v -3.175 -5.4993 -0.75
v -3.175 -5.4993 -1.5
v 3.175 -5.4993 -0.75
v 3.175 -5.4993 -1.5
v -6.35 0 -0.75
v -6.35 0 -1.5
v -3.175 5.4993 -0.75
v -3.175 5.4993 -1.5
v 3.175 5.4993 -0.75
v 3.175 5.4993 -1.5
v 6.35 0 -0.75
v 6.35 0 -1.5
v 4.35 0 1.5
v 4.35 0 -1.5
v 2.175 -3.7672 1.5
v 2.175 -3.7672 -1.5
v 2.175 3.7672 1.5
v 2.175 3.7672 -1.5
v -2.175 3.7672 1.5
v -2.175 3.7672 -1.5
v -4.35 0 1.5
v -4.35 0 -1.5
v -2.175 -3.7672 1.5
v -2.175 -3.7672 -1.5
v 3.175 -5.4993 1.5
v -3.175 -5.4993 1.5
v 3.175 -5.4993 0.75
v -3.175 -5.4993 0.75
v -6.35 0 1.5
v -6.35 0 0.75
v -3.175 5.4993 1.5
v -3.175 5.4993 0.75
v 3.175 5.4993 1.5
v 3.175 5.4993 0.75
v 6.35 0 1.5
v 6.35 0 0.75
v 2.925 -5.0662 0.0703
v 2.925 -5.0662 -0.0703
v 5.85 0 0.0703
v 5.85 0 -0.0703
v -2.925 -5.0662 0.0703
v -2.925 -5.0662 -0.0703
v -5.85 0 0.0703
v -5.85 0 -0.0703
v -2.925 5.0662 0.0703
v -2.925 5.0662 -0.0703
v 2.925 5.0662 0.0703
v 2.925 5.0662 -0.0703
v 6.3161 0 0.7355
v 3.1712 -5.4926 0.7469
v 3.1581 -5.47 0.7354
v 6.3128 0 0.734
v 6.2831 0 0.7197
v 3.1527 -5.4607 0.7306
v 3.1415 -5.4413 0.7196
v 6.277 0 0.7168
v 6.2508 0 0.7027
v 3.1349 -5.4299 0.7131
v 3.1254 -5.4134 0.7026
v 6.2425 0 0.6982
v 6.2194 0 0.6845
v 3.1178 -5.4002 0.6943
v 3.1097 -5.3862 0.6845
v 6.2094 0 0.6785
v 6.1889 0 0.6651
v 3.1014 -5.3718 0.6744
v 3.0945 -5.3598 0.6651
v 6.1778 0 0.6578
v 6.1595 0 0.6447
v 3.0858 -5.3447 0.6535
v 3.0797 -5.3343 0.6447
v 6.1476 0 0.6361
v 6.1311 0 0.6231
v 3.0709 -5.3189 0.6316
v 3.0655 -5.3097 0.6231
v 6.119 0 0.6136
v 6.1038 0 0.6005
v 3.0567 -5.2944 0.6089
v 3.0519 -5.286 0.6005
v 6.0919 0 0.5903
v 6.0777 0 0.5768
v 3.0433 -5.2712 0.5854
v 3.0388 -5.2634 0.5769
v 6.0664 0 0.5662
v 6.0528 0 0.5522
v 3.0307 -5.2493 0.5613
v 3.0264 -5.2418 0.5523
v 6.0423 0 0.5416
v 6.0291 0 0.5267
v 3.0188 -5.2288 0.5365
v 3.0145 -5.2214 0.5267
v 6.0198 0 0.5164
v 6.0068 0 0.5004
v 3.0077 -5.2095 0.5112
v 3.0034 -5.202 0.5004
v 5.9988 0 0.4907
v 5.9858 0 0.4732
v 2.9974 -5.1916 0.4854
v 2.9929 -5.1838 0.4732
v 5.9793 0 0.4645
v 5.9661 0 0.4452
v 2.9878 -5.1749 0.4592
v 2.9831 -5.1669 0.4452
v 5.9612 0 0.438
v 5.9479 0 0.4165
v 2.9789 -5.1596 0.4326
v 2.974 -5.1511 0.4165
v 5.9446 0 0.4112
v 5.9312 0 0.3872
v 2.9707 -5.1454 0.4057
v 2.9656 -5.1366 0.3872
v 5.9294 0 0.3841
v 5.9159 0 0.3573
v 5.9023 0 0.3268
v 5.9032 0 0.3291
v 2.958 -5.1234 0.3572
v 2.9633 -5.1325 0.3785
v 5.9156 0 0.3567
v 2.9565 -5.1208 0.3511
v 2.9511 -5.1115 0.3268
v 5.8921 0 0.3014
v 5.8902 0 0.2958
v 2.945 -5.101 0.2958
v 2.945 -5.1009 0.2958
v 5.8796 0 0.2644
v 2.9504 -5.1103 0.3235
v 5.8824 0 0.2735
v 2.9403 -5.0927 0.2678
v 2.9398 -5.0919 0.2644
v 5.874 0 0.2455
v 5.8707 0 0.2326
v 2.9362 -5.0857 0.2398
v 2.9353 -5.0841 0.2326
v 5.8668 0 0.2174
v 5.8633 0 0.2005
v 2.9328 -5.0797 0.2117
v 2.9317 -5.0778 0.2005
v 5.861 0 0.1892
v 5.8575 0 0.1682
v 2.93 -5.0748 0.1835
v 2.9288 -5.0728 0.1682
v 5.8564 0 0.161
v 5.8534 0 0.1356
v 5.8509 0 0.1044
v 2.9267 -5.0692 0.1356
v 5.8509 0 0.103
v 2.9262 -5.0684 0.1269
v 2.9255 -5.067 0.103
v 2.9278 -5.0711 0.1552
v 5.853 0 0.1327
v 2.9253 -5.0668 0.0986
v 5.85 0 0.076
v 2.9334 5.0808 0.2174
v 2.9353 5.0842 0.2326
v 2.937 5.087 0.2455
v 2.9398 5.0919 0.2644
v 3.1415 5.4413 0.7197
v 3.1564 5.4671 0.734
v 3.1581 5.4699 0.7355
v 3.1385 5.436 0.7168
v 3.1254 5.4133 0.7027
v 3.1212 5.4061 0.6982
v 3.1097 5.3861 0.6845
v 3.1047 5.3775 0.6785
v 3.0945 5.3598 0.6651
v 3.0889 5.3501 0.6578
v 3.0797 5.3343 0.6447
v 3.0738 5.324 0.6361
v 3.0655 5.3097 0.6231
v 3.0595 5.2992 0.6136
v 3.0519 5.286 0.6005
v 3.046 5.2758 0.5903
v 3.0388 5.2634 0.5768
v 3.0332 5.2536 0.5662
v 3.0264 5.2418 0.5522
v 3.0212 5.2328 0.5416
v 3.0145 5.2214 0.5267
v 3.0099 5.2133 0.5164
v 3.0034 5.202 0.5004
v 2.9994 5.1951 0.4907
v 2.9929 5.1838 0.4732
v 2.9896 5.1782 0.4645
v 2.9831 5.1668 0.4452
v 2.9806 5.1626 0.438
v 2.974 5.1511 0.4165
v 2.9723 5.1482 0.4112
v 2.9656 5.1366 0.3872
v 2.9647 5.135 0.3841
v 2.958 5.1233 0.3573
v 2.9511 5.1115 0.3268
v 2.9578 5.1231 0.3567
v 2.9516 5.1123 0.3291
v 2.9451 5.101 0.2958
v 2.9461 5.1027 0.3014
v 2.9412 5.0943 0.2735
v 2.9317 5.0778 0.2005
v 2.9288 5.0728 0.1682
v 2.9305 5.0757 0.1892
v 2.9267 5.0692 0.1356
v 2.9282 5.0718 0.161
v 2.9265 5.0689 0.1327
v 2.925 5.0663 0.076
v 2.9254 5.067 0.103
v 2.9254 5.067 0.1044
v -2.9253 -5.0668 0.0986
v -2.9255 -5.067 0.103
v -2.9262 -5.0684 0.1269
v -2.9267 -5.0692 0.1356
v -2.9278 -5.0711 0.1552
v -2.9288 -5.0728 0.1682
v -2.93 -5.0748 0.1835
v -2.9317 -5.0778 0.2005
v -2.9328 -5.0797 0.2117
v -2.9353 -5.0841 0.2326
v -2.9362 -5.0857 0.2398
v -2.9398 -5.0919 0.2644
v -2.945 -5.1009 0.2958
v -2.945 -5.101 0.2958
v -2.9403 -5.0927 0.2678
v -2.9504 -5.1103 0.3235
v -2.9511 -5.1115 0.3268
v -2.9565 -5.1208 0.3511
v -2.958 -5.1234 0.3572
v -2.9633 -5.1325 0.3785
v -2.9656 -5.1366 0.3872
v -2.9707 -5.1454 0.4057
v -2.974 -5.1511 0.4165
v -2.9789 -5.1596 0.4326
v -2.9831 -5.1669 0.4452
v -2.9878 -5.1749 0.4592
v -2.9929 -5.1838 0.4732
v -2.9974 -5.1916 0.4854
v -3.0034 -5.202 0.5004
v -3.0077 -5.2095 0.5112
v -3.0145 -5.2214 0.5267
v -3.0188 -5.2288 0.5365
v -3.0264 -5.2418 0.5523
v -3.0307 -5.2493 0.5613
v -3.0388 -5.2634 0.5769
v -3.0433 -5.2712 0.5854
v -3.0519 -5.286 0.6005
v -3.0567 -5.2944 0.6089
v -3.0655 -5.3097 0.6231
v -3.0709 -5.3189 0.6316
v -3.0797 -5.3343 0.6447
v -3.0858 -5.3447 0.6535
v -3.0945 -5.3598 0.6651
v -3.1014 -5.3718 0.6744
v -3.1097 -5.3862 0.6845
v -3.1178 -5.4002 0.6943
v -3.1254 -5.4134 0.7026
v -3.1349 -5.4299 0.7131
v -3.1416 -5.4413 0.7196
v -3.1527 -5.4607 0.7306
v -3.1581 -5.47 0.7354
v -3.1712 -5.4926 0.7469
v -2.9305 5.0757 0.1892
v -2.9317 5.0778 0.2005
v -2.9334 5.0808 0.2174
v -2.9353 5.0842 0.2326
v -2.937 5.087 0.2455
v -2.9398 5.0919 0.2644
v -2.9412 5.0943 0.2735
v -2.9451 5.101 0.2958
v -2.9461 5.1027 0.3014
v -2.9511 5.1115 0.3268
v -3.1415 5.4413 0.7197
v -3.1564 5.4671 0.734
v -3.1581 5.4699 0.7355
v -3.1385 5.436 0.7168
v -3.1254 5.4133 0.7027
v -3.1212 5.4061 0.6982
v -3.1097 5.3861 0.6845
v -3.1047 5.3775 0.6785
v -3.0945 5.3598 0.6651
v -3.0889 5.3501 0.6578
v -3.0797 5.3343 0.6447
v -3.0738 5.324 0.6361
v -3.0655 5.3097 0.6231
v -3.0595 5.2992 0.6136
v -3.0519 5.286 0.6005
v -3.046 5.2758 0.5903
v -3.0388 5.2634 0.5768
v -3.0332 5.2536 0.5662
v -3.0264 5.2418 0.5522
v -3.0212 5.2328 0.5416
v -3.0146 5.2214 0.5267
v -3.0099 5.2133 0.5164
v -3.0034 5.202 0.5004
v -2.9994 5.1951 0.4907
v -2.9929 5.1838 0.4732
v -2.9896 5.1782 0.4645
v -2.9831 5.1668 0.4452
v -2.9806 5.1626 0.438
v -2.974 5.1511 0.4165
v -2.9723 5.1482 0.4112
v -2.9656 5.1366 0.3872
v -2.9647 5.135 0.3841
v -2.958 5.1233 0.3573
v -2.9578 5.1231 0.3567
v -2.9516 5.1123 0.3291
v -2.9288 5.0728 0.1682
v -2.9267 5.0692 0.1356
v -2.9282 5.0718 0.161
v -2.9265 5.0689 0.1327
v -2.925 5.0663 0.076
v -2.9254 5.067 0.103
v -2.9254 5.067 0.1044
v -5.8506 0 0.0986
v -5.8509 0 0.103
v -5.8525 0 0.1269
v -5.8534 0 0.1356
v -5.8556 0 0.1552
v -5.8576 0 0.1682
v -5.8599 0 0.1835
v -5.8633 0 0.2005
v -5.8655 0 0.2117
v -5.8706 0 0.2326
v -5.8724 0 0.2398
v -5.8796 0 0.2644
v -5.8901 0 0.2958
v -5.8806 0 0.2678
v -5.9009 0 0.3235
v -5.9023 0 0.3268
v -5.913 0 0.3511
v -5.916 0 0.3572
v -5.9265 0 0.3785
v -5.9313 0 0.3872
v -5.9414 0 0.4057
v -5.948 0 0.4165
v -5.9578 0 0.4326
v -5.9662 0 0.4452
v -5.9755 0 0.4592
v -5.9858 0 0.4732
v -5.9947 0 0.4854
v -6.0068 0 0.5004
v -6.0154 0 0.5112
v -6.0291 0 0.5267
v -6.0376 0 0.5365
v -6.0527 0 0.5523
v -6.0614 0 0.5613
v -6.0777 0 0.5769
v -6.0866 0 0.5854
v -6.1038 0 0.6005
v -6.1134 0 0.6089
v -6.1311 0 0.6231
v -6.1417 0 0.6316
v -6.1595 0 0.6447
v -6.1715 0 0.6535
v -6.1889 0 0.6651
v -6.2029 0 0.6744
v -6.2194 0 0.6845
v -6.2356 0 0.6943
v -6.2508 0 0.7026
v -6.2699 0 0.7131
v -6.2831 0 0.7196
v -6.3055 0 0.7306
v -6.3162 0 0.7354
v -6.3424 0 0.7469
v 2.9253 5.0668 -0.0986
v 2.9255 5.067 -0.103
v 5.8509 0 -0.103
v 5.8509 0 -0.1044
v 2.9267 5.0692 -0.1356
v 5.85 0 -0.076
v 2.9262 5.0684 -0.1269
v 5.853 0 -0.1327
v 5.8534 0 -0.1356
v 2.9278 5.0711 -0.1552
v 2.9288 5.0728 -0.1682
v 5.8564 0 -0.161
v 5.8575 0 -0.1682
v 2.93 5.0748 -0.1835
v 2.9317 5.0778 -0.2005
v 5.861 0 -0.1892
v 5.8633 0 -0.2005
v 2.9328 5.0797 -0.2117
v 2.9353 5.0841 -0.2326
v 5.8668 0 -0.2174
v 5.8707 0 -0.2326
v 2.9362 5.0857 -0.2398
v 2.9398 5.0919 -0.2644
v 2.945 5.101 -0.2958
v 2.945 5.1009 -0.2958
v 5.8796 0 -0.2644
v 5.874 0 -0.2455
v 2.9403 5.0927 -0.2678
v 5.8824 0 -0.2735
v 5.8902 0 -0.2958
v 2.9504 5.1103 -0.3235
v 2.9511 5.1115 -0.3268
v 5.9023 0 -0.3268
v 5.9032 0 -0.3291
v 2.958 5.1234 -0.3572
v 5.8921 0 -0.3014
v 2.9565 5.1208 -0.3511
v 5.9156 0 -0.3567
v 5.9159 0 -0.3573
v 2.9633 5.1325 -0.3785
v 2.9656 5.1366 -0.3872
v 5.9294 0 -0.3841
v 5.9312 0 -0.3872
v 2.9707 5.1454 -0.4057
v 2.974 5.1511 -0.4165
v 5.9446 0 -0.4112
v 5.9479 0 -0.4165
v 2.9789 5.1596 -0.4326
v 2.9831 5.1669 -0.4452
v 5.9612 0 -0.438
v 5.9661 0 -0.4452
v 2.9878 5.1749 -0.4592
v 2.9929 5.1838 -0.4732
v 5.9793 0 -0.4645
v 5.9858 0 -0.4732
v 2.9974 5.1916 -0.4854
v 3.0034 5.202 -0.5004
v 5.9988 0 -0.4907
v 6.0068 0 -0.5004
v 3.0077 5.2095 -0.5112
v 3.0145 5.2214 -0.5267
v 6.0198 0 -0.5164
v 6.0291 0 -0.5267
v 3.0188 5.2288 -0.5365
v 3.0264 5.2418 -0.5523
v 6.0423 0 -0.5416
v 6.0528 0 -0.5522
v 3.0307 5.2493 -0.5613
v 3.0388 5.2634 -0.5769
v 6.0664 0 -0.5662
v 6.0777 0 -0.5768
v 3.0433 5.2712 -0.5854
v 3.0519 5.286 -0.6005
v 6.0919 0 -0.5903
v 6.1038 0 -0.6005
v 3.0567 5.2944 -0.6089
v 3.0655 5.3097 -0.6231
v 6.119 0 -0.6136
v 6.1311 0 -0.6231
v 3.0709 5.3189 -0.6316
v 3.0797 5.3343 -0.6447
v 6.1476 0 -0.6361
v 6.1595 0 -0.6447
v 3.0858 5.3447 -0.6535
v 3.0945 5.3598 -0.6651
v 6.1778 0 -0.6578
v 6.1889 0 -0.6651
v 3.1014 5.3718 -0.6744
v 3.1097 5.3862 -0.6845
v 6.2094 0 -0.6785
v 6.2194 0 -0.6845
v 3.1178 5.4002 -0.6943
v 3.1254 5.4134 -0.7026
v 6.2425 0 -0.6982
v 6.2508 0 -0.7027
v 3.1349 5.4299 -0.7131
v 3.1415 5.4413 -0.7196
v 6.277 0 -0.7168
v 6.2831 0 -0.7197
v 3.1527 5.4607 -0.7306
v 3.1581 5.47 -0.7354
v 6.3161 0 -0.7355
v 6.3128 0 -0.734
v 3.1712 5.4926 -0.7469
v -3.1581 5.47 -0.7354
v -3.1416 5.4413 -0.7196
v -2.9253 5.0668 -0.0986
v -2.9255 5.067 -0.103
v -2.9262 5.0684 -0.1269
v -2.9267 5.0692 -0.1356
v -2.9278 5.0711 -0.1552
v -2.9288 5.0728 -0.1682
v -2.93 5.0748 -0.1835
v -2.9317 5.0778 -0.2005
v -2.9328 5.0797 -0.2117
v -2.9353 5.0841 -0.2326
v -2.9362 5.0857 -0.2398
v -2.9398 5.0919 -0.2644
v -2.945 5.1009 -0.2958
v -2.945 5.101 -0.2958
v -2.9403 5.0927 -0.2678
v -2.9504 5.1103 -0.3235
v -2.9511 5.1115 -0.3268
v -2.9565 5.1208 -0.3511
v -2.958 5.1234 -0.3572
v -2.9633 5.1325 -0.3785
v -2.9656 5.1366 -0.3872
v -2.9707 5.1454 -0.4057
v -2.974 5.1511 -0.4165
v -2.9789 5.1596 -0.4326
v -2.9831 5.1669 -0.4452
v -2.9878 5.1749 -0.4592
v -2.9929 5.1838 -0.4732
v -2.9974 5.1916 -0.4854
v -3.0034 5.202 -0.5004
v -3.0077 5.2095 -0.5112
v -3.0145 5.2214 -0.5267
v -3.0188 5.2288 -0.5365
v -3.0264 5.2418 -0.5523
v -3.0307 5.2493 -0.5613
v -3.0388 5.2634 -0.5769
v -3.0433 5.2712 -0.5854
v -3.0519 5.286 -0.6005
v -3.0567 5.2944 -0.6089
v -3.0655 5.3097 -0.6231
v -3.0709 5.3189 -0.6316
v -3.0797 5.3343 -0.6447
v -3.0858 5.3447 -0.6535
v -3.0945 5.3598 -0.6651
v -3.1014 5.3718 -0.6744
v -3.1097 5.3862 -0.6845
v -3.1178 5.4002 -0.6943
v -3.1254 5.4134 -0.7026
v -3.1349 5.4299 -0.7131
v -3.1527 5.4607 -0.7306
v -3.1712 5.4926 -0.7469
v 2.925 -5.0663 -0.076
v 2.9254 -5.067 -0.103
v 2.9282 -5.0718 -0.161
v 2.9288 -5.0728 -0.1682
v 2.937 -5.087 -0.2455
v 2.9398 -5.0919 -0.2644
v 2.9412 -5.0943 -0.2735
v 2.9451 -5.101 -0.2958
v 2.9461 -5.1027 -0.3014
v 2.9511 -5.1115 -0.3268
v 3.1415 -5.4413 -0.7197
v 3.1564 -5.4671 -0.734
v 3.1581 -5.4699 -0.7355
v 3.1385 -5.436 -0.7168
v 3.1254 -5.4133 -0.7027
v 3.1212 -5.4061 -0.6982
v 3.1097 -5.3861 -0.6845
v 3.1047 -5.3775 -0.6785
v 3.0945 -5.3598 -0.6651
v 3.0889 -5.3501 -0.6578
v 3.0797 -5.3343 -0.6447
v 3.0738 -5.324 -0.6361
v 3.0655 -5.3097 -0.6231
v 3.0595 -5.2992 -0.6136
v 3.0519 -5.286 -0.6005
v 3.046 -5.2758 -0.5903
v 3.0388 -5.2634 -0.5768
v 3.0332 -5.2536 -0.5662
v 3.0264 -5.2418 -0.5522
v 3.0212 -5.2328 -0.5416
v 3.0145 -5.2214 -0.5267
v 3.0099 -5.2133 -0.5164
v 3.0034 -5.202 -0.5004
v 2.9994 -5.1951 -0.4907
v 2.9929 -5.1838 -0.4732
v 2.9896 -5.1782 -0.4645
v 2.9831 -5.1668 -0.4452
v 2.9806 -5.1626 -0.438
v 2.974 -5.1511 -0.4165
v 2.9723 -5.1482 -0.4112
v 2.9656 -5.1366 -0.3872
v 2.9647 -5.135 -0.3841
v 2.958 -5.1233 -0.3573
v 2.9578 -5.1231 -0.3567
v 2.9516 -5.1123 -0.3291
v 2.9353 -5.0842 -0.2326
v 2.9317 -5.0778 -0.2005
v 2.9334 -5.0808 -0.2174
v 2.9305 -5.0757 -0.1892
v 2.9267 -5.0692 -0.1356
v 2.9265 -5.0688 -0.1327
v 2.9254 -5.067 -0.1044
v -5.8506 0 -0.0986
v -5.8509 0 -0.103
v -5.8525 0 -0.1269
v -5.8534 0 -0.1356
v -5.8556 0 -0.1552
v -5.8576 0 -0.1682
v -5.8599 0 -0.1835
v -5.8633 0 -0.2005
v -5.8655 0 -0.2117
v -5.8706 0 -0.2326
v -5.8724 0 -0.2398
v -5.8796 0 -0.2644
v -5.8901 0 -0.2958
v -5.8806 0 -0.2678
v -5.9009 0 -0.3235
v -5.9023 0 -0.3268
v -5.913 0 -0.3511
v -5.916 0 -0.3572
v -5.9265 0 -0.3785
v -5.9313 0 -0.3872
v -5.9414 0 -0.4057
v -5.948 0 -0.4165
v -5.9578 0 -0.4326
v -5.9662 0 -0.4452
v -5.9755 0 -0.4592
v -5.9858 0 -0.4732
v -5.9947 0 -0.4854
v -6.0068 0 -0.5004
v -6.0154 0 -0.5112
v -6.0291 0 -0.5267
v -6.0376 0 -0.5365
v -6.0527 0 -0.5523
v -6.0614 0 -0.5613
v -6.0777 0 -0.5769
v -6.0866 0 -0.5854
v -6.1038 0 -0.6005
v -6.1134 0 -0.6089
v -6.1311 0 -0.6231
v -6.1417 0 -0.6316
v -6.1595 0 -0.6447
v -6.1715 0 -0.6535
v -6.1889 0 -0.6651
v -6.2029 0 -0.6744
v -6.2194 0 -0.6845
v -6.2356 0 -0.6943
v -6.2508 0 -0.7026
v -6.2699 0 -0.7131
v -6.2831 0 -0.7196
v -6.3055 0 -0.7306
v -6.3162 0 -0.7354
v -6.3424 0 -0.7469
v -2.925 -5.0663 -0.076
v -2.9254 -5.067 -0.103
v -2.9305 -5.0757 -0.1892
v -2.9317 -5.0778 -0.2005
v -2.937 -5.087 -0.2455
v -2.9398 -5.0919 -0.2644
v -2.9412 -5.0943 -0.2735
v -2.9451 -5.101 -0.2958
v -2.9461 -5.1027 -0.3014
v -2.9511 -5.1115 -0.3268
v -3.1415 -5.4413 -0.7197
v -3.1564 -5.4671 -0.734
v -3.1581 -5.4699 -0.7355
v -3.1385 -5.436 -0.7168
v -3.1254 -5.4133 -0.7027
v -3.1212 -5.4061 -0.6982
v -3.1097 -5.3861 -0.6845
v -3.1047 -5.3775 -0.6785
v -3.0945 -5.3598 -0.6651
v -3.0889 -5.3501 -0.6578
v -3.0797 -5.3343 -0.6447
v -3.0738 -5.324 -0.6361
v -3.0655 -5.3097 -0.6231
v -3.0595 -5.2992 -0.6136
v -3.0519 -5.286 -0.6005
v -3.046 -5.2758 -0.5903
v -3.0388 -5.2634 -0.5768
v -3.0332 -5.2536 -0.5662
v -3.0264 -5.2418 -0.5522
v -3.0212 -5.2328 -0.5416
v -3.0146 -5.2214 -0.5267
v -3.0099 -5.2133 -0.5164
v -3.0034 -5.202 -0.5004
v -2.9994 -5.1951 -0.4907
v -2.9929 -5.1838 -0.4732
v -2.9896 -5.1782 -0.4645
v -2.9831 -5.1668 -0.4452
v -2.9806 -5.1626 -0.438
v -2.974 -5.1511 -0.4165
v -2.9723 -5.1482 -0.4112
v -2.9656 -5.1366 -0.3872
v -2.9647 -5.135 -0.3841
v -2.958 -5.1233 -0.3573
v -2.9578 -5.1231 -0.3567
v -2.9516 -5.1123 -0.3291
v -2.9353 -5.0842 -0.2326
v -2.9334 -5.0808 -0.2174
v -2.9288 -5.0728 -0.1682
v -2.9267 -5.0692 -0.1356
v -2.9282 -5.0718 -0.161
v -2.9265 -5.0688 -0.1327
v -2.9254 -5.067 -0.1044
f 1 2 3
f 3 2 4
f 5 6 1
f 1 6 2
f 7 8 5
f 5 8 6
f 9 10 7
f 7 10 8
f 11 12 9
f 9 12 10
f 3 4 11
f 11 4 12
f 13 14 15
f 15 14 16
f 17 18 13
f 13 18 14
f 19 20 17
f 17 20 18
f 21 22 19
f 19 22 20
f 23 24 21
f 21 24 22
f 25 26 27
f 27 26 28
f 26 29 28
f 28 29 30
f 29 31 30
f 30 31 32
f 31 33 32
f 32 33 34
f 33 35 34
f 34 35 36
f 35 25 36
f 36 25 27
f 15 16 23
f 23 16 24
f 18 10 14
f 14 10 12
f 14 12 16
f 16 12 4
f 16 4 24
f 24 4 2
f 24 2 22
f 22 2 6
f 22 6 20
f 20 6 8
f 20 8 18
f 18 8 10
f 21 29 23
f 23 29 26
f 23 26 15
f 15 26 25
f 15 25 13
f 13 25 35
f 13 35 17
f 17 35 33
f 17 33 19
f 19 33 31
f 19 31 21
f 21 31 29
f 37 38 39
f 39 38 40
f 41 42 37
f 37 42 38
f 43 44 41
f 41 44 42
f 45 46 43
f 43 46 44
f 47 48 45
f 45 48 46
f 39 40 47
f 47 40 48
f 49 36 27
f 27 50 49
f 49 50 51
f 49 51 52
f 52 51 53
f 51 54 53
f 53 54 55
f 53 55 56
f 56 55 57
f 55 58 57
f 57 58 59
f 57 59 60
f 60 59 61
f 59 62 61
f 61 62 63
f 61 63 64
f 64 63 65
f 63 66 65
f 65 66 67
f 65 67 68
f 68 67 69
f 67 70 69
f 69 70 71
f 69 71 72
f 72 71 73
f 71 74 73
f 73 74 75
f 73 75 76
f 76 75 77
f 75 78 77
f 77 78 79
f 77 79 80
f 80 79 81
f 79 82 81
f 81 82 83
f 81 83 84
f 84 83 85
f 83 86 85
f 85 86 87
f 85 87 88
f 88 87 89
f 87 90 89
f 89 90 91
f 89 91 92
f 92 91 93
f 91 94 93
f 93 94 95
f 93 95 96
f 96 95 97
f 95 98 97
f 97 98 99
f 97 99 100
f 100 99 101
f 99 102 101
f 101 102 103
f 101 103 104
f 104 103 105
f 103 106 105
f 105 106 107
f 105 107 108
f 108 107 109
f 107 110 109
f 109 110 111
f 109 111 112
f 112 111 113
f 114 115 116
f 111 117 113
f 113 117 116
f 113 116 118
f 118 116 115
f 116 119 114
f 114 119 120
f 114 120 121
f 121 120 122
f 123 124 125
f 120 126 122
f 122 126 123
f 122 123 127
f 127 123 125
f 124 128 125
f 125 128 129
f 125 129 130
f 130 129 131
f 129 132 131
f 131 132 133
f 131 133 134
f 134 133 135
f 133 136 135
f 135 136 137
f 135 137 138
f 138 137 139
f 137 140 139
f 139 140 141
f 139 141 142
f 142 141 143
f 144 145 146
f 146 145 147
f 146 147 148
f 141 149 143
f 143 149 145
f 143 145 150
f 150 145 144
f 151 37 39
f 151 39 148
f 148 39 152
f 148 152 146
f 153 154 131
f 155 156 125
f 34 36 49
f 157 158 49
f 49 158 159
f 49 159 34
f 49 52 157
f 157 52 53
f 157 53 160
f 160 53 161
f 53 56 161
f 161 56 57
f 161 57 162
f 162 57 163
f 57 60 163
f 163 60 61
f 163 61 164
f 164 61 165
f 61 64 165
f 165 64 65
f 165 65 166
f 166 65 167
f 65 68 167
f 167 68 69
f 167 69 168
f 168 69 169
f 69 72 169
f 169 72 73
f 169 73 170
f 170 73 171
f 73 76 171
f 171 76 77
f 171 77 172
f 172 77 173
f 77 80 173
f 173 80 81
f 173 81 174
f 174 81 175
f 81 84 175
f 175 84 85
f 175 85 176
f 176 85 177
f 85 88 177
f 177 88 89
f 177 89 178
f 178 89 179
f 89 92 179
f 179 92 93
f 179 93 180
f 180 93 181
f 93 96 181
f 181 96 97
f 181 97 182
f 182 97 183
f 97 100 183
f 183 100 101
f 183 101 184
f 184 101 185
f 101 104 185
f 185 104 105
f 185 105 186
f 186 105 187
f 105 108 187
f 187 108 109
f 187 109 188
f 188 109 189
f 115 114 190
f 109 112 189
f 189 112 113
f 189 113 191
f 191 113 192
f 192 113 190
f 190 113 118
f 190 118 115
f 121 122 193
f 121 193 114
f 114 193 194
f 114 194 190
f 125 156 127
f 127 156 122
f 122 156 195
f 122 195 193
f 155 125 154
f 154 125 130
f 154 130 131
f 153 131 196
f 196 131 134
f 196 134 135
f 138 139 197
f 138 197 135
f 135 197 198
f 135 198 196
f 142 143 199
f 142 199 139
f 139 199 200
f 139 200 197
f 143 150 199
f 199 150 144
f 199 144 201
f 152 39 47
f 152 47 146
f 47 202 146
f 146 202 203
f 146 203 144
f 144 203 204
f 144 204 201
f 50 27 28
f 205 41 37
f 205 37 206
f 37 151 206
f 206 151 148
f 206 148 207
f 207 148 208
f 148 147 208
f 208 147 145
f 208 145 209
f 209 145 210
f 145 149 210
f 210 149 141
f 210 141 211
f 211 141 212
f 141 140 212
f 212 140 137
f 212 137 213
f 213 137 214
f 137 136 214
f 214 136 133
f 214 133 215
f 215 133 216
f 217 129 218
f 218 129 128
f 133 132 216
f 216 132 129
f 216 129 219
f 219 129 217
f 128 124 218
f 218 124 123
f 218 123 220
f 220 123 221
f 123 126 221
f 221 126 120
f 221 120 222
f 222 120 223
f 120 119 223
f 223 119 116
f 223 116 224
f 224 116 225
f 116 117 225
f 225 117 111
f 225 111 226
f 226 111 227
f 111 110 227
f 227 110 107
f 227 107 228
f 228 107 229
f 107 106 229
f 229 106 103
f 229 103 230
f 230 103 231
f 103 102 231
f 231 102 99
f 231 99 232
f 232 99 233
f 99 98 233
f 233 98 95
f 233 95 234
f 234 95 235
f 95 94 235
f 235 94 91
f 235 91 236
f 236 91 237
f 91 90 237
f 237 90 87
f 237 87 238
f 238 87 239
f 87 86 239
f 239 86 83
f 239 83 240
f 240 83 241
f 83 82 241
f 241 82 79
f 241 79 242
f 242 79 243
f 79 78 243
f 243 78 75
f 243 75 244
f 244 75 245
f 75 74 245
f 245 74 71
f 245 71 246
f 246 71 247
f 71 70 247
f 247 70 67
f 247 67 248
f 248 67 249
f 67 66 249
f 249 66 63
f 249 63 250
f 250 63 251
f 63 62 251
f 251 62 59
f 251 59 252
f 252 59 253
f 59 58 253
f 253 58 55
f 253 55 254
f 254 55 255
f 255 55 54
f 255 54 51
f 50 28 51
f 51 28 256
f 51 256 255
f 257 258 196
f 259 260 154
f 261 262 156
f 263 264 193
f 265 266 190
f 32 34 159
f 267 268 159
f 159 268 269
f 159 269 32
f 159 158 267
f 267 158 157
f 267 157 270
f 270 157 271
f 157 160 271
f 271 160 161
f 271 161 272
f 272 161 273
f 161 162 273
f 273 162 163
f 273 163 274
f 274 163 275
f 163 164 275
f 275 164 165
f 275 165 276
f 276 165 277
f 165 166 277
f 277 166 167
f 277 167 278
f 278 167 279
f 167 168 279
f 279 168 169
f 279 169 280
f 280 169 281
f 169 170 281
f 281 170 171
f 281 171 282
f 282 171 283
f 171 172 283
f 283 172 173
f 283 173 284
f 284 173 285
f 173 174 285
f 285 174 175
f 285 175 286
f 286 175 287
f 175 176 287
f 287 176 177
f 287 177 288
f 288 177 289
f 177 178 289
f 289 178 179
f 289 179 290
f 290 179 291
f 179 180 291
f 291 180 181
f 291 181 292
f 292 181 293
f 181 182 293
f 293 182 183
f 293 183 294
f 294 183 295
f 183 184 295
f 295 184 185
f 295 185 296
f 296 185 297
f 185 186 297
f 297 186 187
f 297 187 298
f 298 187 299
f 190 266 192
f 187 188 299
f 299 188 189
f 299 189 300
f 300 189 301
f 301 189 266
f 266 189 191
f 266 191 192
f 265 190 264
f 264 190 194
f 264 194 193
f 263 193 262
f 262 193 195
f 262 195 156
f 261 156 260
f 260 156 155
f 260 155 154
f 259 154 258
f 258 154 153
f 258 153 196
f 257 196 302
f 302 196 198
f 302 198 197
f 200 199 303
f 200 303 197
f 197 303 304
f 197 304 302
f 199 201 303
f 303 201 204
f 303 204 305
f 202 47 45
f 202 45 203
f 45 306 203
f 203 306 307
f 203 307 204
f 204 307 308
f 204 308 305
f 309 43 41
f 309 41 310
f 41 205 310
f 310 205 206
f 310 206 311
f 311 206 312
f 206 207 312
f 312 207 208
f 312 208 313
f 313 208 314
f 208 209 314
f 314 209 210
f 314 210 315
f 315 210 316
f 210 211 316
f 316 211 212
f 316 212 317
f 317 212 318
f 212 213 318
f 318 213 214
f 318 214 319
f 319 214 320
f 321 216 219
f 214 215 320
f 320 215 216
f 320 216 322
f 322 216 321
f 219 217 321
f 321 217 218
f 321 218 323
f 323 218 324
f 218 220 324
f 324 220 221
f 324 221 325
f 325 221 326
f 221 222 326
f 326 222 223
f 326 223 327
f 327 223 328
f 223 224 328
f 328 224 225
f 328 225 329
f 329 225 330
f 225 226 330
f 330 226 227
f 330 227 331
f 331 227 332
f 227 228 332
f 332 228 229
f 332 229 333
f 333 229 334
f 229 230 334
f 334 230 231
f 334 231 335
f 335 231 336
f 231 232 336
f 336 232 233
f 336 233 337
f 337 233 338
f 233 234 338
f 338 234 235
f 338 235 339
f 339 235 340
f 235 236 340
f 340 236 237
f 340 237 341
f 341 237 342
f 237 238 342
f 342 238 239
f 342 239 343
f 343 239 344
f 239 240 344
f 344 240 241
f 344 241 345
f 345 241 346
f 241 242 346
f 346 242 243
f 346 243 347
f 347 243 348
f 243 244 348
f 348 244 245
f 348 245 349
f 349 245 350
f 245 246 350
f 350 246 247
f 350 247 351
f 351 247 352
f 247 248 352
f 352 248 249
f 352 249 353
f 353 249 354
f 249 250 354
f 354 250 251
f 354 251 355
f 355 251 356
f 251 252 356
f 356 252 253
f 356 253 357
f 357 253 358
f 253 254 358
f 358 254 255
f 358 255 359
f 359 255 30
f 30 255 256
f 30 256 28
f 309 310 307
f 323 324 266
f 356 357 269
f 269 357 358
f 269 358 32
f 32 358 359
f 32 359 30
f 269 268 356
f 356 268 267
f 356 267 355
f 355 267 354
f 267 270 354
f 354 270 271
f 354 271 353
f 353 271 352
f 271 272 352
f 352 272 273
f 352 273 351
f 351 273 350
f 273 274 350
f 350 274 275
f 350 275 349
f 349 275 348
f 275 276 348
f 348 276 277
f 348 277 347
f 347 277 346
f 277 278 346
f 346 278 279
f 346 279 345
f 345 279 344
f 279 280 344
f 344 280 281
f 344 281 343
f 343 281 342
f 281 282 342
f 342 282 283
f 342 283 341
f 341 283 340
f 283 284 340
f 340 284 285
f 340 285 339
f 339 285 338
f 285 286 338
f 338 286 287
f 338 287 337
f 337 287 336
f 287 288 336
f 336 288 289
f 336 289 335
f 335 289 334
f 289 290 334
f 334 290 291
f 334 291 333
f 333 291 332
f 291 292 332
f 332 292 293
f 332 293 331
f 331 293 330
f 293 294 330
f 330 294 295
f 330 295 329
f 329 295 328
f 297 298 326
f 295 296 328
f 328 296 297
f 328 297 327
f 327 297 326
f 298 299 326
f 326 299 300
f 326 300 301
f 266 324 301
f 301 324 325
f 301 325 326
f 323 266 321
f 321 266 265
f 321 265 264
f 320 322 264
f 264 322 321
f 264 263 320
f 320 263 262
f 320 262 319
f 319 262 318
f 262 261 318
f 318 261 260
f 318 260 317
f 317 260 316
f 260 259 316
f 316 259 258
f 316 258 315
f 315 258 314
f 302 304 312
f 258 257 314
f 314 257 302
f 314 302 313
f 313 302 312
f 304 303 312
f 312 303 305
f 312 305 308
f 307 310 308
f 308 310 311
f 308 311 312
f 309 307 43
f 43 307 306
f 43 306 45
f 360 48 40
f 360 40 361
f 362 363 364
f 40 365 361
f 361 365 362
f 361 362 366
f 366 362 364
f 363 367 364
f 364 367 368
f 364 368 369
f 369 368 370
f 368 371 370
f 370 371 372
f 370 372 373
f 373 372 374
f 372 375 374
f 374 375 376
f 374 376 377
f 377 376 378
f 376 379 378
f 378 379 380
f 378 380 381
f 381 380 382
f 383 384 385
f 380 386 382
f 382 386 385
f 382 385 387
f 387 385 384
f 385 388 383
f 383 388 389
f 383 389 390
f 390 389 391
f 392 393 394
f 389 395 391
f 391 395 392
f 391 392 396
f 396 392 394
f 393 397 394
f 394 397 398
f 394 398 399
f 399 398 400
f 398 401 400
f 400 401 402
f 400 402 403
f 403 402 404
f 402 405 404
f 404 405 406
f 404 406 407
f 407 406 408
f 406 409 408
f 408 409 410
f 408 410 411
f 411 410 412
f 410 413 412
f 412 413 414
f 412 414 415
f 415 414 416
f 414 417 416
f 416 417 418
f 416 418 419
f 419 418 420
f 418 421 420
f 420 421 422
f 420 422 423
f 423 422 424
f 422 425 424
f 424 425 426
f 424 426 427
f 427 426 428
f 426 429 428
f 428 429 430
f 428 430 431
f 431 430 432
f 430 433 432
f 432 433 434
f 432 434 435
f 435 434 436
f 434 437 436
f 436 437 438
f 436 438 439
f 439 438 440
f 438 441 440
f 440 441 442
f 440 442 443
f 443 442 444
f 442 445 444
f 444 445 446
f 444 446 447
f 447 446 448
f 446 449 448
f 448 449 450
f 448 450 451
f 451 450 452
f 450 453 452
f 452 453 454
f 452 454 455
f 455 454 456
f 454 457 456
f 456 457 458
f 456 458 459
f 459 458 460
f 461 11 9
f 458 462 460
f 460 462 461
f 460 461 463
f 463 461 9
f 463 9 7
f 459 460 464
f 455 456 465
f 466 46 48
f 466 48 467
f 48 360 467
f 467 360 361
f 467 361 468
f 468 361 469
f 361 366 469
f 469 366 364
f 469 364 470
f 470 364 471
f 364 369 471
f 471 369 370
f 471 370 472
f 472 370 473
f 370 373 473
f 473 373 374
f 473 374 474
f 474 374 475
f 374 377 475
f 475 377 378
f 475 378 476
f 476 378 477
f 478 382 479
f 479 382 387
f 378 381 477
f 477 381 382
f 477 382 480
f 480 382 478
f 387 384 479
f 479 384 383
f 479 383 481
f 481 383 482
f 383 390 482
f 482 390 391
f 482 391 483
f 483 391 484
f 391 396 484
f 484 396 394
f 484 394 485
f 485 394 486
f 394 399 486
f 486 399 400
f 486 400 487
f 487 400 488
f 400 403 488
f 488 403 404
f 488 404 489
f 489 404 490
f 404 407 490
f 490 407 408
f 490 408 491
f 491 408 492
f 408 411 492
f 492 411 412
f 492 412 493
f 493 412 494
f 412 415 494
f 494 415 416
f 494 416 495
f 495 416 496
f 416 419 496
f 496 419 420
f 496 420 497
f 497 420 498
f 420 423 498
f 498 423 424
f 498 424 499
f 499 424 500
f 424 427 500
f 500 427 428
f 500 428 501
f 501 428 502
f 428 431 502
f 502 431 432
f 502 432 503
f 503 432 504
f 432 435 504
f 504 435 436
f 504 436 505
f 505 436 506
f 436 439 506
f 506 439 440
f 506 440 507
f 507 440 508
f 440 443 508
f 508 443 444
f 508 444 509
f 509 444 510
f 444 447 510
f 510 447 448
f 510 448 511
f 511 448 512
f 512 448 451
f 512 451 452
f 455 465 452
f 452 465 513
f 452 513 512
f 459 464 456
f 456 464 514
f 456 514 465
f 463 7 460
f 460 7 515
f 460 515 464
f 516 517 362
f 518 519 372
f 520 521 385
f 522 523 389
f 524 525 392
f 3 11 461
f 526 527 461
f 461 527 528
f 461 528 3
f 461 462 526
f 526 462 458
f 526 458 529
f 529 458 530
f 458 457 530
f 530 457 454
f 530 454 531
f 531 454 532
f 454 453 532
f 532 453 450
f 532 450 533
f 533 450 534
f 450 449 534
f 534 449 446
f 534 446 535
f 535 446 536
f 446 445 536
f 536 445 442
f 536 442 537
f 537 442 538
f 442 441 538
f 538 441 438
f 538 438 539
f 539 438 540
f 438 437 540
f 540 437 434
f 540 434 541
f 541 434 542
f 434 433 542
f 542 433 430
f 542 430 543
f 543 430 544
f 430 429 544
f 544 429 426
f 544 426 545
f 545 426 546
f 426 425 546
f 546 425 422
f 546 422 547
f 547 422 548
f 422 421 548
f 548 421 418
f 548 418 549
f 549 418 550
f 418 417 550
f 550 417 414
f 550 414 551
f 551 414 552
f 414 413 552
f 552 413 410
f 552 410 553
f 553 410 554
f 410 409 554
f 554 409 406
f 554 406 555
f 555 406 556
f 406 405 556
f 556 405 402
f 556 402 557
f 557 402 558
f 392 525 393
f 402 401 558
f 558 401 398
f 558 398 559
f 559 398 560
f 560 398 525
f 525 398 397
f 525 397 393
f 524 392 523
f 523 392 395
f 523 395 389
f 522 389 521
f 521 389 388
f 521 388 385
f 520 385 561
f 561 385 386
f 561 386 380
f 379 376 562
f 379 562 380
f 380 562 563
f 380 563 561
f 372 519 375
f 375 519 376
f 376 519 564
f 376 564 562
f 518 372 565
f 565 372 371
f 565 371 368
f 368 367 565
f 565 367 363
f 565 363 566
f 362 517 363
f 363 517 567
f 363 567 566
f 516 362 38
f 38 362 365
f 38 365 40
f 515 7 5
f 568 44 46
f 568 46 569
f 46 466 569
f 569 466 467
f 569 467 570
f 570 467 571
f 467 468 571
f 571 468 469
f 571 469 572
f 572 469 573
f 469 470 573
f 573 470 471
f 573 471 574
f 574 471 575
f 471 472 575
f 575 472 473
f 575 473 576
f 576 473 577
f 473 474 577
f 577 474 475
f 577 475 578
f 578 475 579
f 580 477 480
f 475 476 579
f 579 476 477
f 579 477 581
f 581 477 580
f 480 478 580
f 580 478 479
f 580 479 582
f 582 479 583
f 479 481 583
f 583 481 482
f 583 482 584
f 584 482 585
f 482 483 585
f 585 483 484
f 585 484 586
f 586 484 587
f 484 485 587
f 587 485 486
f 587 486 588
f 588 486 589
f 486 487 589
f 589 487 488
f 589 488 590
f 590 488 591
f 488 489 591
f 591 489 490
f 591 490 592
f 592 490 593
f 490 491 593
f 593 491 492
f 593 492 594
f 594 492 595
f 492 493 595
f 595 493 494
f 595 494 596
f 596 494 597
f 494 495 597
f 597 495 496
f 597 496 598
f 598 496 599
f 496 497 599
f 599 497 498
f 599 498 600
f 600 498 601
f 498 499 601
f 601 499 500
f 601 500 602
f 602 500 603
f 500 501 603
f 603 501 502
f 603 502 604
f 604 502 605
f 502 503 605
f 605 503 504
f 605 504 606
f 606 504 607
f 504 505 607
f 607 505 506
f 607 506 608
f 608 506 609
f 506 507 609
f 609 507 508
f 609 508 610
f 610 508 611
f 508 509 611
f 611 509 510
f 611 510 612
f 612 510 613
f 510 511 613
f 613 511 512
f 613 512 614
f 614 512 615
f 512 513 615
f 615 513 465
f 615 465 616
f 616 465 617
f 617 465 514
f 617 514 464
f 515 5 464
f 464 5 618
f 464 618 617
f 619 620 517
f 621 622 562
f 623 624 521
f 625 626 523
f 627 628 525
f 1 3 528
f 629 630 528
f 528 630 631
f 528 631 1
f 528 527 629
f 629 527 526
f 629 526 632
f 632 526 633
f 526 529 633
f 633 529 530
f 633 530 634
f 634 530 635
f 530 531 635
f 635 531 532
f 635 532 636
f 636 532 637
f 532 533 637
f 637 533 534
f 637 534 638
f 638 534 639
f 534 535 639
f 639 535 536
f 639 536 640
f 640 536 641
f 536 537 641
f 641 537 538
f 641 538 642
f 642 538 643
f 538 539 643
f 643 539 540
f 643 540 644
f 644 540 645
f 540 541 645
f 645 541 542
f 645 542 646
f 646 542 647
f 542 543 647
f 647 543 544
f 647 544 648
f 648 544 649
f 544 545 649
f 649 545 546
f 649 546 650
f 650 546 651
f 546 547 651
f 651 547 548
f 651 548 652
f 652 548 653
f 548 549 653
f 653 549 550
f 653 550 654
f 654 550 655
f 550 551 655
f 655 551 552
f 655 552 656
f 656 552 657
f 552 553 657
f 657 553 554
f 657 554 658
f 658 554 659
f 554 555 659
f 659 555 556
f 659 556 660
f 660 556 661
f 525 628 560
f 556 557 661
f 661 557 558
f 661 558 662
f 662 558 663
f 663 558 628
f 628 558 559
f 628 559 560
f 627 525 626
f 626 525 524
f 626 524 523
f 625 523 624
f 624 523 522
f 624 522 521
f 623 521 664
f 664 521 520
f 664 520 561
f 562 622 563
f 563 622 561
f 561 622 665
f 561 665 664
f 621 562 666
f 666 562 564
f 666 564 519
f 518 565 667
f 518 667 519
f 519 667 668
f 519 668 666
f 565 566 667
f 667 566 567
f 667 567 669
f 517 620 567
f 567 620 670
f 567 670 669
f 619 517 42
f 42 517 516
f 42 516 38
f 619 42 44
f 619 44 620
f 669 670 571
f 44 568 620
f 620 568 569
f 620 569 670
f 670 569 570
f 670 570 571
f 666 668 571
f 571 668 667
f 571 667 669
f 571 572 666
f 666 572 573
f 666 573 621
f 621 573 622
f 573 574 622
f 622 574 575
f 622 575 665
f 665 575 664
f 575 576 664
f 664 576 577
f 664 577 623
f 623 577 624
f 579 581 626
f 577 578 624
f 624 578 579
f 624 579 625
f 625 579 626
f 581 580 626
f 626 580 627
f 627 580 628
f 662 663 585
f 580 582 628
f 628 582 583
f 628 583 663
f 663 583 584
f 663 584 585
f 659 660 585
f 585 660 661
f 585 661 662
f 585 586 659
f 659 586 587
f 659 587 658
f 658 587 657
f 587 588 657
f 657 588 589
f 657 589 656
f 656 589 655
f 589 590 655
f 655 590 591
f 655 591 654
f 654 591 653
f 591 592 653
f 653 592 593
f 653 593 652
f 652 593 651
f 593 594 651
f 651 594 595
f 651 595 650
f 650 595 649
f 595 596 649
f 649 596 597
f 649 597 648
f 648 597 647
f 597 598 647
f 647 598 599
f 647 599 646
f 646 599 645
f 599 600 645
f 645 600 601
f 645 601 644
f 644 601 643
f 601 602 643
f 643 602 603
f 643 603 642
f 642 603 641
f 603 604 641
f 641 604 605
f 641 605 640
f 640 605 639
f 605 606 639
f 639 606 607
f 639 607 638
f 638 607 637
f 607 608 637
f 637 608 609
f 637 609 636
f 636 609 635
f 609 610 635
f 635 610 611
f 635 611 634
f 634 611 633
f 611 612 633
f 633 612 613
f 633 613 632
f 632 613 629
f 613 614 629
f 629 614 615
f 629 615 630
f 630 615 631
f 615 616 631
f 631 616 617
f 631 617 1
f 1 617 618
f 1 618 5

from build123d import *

# Parameters (mm, degrees)
BOSS_EXTRUDE2_DEPTH      = 1.5
BOSS_EXTRUDE2_DEPTH_BACK = 1.5
CUT_EXTRUDE1_DEPTH       = 0.75
CUT_EXTRUDE1_DEPTH_BACK  = 0.75
FILLET1_R                = 0.75


with BuildPart() as part:
    # Sketch1 → Boss-Extrude2 (new, two sides: drawn at the far end of the back side and taken through both)
    # profile 1 of 2: a face of its own
    with BuildSketch(Plane.XY.offset(-BOSS_EXTRUDE2_DEPTH_BACK)):
        Polygon((-3.175, -5.499261314), (3.175, -5.499261314), (6.35, 0), (3.175, 5.499261314), (-3.175, 5.499261314), (-6.35, 0), align=None)
        Polygon((2.925, -5.066248612), (5.85, 0), (2.925, 5.066248612), (-2.925, 5.066248612), (-5.85, 0), (-2.925, -5.066248612), align=None, mode=Mode.SUBTRACT)
    # profile 2 of 2: a face of its own
    with BuildSketch(Plane.XY.offset(-BOSS_EXTRUDE2_DEPTH_BACK)):
        Polygon((-2.925, -5.066248612), (2.925, -5.066248612), (5.85, 0), (2.925, 5.066248612), (-2.925, 5.066248612), (-5.85, 0), align=None)
        Polygon((2.175, -3.767210506), (4.35, 0), (2.175, 3.767210506), (-2.175, 3.767210506), (-4.35, 0), (-2.175, -3.767210506), align=None, mode=Mode.SUBTRACT)
    extrude(amount=BOSS_EXTRUDE2_DEPTH + BOSS_EXTRUDE2_DEPTH_BACK)

    # Sketch1<4> → Cut-Extrude1 (cut, two sides: drawn at the far end of the back side and taken through both)
    with BuildSketch(Plane.XY.offset(-CUT_EXTRUDE1_DEPTH_BACK)):
        Polygon((-3.175, -5.499261314), (3.175, -5.499261314), (6.35, 0), (3.175, 5.499261314), (-3.175, 5.499261314), (-6.35, 0), align=None)
        Polygon((2.925, -5.066248612), (5.85, 0), (2.925, 5.066248612), (-2.925, 5.066248612), (-5.85, 0), (-2.925, -5.066248612), align=None, mode=Mode.SUBTRACT)
    extrude(amount=CUT_EXTRUDE1_DEPTH + CUT_EXTRUDE1_DEPTH_BACK, mode=Mode.SUBTRACT)

    # Fillet1
    # the kernel refuses this fillet: 0.75 mm, written as the material it adds along each edge
    with BuildSketch(Plane(origin=(2.075350207, -6.537885222, 0.75), x_dir=(0.8660254037844385, -0.5000000000000001, 0), z_dir=(0.5000000000000001, 0.8660254037844387, 0))) as fillet1_piece_1_section:
        with BuildLine():
            CenterArc((0.75, 0.679719834), FILLET1_R, 180, 64.998010544)
            Line((0, 0.679719834), (0, 0))
            Line((0, 0), (0.433012702, 0))
        make_face()
    fillet1_piece_1 = extrude(amount=9.24859917, mode=Mode.PRIVATE)
    fillet1_piece_1 = split(fillet1_piece_1, bisect_by=Plane(origin=(2.075350207, -5.499261314, 0.75), z_dir=(0, 1, 0)), keep=Keep.TOP, mode=Mode.PRIVATE)
    fillet1_piece_1 = split(fillet1_piece_1, bisect_by=Plane(origin=(8.112324896, -3.05243626, 0.75), z_dir=(-0.8660254037844386, -0.5000000000000002, 0)), keep=Keep.TOP, mode=Mode.PRIVATE)
    fillet1_piece_1 = fillet1_piece_1 - Plane(origin=(2.075350207, -5.816248612, 0.070280166), x_dir=(0, 0.42264973081037627, 0.9062931121033175), z_dir=(-1, 0, 0)) * Cylinder(0.75, 22, mode=Mode.PRIVATE)
    fillet1_piece_1 = fillet1_piece_1 - Plane(origin=(8.386843949, -2.893942611, 0.070280166), x_dir=(-0.3660254037844377, -0.21132486540518658, 0.9062931121033191), z_dir=(0.5000000000000001, -0.8660254037844386, 0)) * Cylinder(0.75, 22, mode=Mode.PRIVATE)
    add(fillet1_piece_1)
    with BuildSketch(Plane(origin=(-4.624299585, -5.066248612, 0.75), x_dir=(0, -1, 0), z_dir=(1, 0, 0))) as fillet1_piece_2_section:
        with BuildLine():
            CenterArc((0.75, 0.679719834), FILLET1_R, 180, 64.998010544)
            Line((0, 0.679719834), (0, 0))
            Line((0, 0), (0.433012702, 0))
        make_face()
    fillet1_piece_2 = extrude(amount=9.24859917, mode=Mode.PRIVATE)
    fillet1_piece_2 = split(fillet1_piece_2, bisect_by=Plane(origin=(-3.724824896, -4.546936658, 0.75), z_dir=(0.8660254037844386, 0.5000000000000001, 0)), keep=Keep.TOP, mode=Mode.PRIVATE)
    fillet1_piece_2 = split(fillet1_piece_2, bisect_by=Plane(origin=(1.412675104, -8.551697574, 0.75), z_dir=(-0.8660254037844389, 0.4999999999999995, 0)), keep=Keep.TOP, mode=Mode.PRIVATE)
    fillet1_piece_2 = fillet1_piece_2 - Plane(origin=(1.687194157, -8.710191223, 0.070280166), x_dir=(-0.3660254037844373, 0.21132486540518636, 0.9062931121033192), z_dir=(-0.5000000000000001, -0.8660254037844386, 0)) * Cylinder(0.75, 22, mode=Mode.PRIVATE)
    fillet1_piece_2 = fillet1_piece_2 - Plane(origin=(-3.999343949, -4.705430307, 0.070280166), x_dir=(0.3660254037844385, 0.21132486540518705, 0.9062931121033185), z_dir=(-0.5000000000000001, 0.8660254037844386, 0)) * Cylinder(0.75, 22, mode=Mode.PRIVATE)
    add(fillet1_piece_2)
    with BuildSketch(Plane(origin=(-6.699649793, 1.471636609, 0.75), x_dir=(-0.8660254037844386, -0.5000000000000001, 0), z_dir=(0.5000000000000001, -0.8660254037844387, 0))) as fillet1_piece_3_section:
        with BuildLine():
            CenterArc((0.75, 0.679719834), FILLET1_R, 180, 64.998010544)
            Line((0, 0.679719834), (0, 0))
            Line((0, 0), (0.433012702, 0))
        make_face()
    fillet1_piece_3 = extrude(amount=9.24859917, mode=Mode.PRIVATE)
    fillet1_piece_3 = split(fillet1_piece_3, bisect_by=Plane(origin=(-6.699649793, -5.499261314, 0.75), z_dir=(0, 1, 0)), keep=Keep.TOP, mode=Mode.PRIVATE)
    fillet1_piece_3 = split(fillet1_piece_3, bisect_by=Plane(origin=(-5.800175104, 0.952324656, 0.75), z_dir=(0.8660254037844388, -0.4999999999999999, 0)), keep=Keep.TOP, mode=Mode.PRIVATE)
    fillet1_piece_3 = fillet1_piece_3 - Plane(origin=(-6.699649793, -5.816248612, 0.070280166), x_dir=(0, 0.42264973081037627, 0.9062931121033175), z_dir=(-1, 0, 0)) * Cylinder(0.75, 22, mode=Mode.PRIVATE)
    fillet1_piece_3 = fillet1_piece_3 - Plane(origin=(-6.074694157, 1.110818305, 0.070280166), x_dir=(0.36602540378443843, -0.21132486540518683, 0.9062931121033186), z_dir=(0.49999999999999967, 0.8660254037844388, 0)) * Cylinder(0.75, 22, mode=Mode.PRIVATE)
    add(fillet1_piece_3)
    with BuildSketch(Plane(origin=(-2.075350207, 6.537885222, 0.75), x_dir=(-0.8660254037844388, 0.49999999999999967, 0), z_dir=(-0.4999999999999997, -0.8660254037844388, 0))) as fillet1_piece_4_section:
        with BuildLine():
            CenterArc((0.75, 0.679719834), FILLET1_R, 180, 64.998010544)
            Line((0, 0.679719834), (0, 0))
            Line((0, 0), (0.433012702, 0))
        make_face()
    fillet1_piece_4 = extrude(amount=9.24859917, mode=Mode.PRIVATE)
    fillet1_piece_4 = split(fillet1_piece_4, bisect_by=Plane(origin=(-8.112324896, 3.05243626, 0.75), z_dir=(0.8660254037844386, 0.5000000000000001, 0)), keep=Keep.TOP, mode=Mode.PRIVATE)
    fillet1_piece_4 = split(fillet1_piece_4, bisect_by=Plane(origin=(-2.075350207, 5.499261314, 0.75), z_dir=(0, -1, 0)), keep=Keep.TOP, mode=Mode.PRIVATE)
    fillet1_piece_4 = fillet1_piece_4 - Plane(origin=(-8.386843949, 2.893942611, 0.070280166), x_dir=(0.3660254037844385, 0.21132486540518705, 0.9062931121033185), z_dir=(-0.5000000000000001, 0.8660254037844386, 0)) * Cylinder(0.75, 22, mode=Mode.PRIVATE)
    fillet1_piece_4 = fillet1_piece_4 - Plane(origin=(-2.075350207, 5.816248612, 0.070280166), x_dir=(0, -0.42264973081036916, 0.9062931121033209), z_dir=(1, 0, 0)) * Cylinder(0.75, 22, mode=Mode.PRIVATE)
    add(fillet1_piece_4)
    with BuildSketch(Plane(origin=(4.624299585, 5.066248612, 0.75), x_dir=(0, 1, 0), z_dir=(-1, 0, 0))) as fillet1_piece_5_section:
        with BuildLine():
            CenterArc((0.75, 0.679719834), FILLET1_R, 180, 64.998010544)
            Line((0, 0.679719834), (0, 0))
            Line((0, 0), (0.433012702, 0))
        make_face()
    fillet1_piece_5 = extrude(amount=9.24859917, mode=Mode.PRIVATE)
    fillet1_piece_5 = split(fillet1_piece_5, bisect_by=Plane(origin=(-1.412675104, 8.551697574, 0.75), z_dir=(0.8660254037844388, -0.4999999999999999, 0)), keep=Keep.TOP, mode=Mode.PRIVATE)
    fillet1_piece_5 = split(fillet1_piece_5, bisect_by=Plane(origin=(3.724824896, 4.546936658, 0.75), z_dir=(-0.8660254037844386, -0.5000000000000002, 0)), keep=Keep.TOP, mode=Mode.PRIVATE)
    fillet1_piece_5 = fillet1_piece_5 - Plane(origin=(-1.687194157, 8.710191223, 0.070280166), x_dir=(0.36602540378443843, -0.21132486540518683, 0.9062931121033186), z_dir=(0.49999999999999967, 0.8660254037844388, 0)) * Cylinder(0.75, 22, mode=Mode.PRIVATE)
    fillet1_piece_5 = fillet1_piece_5 - Plane(origin=(3.999343949, 4.705430307, 0.070280166), x_dir=(-0.3660254037844377, -0.21132486540518658, 0.9062931121033191), z_dir=(0.5000000000000001, -0.8660254037844386, 0)) * Cylinder(0.75, 22, mode=Mode.PRIVATE)
    add(fillet1_piece_5)
    with BuildSketch(Plane(origin=(6.699649793, -1.471636609, 0.75), x_dir=(0.8660254037844386, 0.5000000000000001, 0), z_dir=(-0.5000000000000001, 0.8660254037844387, 0))) as fillet1_piece_6_section:
        with BuildLine():
            CenterArc((0.75, 0.679719834), FILLET1_R, 180, 64.998010544)
            Line((0, 0.679719834), (0, 0))
            Line((0, 0), (0.433012702, 0))
        make_face()
    fillet1_piece_6 = extrude(amount=9.24859917, mode=Mode.PRIVATE)
    fillet1_piece_6 = split(fillet1_piece_6, bisect_by=Plane(origin=(5.800175104, -0.952324656, 0.75), z_dir=(-0.8660254037844389, 0.4999999999999995, 0)), keep=Keep.TOP, mode=Mode.PRIVATE)
    fillet1_piece_6 = split(fillet1_piece_6, bisect_by=Plane(origin=(6.699649793, 5.499261314, 0.75), z_dir=(0, -1, 0)), keep=Keep.TOP, mode=Mode.PRIVATE)
    fillet1_piece_6 = fillet1_piece_6 - Plane(origin=(6.074694157, -1.110818305, 0.070280166), x_dir=(-0.3660254037844373, 0.21132486540518636, 0.9062931121033192), z_dir=(-0.5000000000000001, -0.8660254037844386, 0)) * Cylinder(0.75, 22, mode=Mode.PRIVATE)
    fillet1_piece_6 = fillet1_piece_6 - Plane(origin=(6.699649793, 5.816248612, 0.070280166), x_dir=(0, -0.42264973081036916, 0.9062931121033209), z_dir=(1, 0, 0)) * Cylinder(0.75, 22, mode=Mode.PRIVATE)
    add(fillet1_piece_6)
    with BuildSketch(Plane(origin=(2.075350207, -6.537885222, -0.75), x_dir=(0, 0, 1), z_dir=(0.5000000000000001, 0.8660254037844387, 0))) as fillet1_piece_7_section:
        with BuildLine():
            CenterArc((0.679719834, 0.75), FILLET1_R, 205.001989456, 64.998010544)
            Line((0, 0.433012702), (0, 0))
            Line((0, 0), (0.679719834, 0))
        make_face()
    fillet1_piece_7 = extrude(amount=9.24859917, mode=Mode.PRIVATE)
    fillet1_piece_7 = split(fillet1_piece_7, bisect_by=Plane(origin=(2.075350207, -5.499261314, -0.75), z_dir=(0, 1, 0)), keep=Keep.TOP, mode=Mode.PRIVATE)
    fillet1_piece_7 = split(fillet1_piece_7, bisect_by=Plane(origin=(8.112324896, -3.05243626, -0.75), z_dir=(-0.8660254037844386, -0.5000000000000002, 0)), keep=Keep.TOP, mode=Mode.PRIVATE)
    fillet1_piece_7 = fillet1_piece_7 - Plane(origin=(8.386843949, -2.893942611, -0.070280166), x_dir=(-0.8660254037844387, -0.5000000000000001, 0), z_dir=(0.5000000000000001, -0.8660254037844387, 0)) * Cylinder(0.75, 22, mode=Mode.PRIVATE)
    fillet1_piece_7 = fillet1_piece_7 - Plane(origin=(2.075350207, -5.816248612, -0.070280166), x_dir=(0, 1, 0), z_dir=(-1, 0, 0)) * Cylinder(0.75, 22, mode=Mode.PRIVATE)
    add(fillet1_piece_7)
    with BuildSketch(Plane(origin=(6.699649793, -1.471636609, -0.75), x_dir=(0, 0, 1), z_dir=(-0.5000000000000001, 0.8660254037844387, 0))) as fillet1_piece_8_section:
        with BuildLine():
            CenterArc((0.679719834, 0.75), FILLET1_R, 205.001989456, 64.998010544)
            Line((0, 0.433012702), (0, 0))
            Line((0, 0), (0.679719834, 0))
        make_face()
    fillet1_piece_8 = extrude(amount=9.24859917, mode=Mode.PRIVATE)
    fillet1_piece_8 = split(fillet1_piece_8, bisect_by=Plane(origin=(5.800175104, -0.952324656, -0.75), z_dir=(-0.8660254037844389, 0.4999999999999995, 0)), keep=Keep.TOP, mode=Mode.PRIVATE)
    fillet1_piece_8 = split(fillet1_piece_8, bisect_by=Plane(origin=(6.699649793, 5.499261314, -0.75), z_dir=(0, -1, 0)), keep=Keep.TOP, mode=Mode.PRIVATE)
    fillet1_piece_8 = fillet1_piece_8 - Plane(origin=(6.074694157, -1.110818305, -0.070280166), x_dir=(-0.8660254037844387, 0.5000000000000001, 0), z_dir=(-0.5000000000000001, -0.8660254037844387, 0)) * Cylinder(0.75, 22, mode=Mode.PRIVATE)
    fillet1_piece_8 = fillet1_piece_8 - Plane(origin=(6.699649793, 5.816248612, -0.070280166), x_dir=(0, -1, 0), z_dir=(1, 0, 0)) * Cylinder(0.75, 22, mode=Mode.PRIVATE)
    add(fillet1_piece_8)
    with BuildSketch(Plane(origin=(4.624299585, 5.066248612, -0.75), x_dir=(0, 0, 1), z_dir=(-1, 0, 0))) as fillet1_piece_9_section:
        with BuildLine():
            CenterArc((0.679719834, 0.75), FILLET1_R, 205.001989456, 64.998010544)
            Line((0, 0.433012702), (0, 0))
            Line((0, 0), (0.679719834, 0))
        make_face()
    fillet1_piece_9 = extrude(amount=9.24859917, mode=Mode.PRIVATE)
    fillet1_piece_9 = split(fillet1_piece_9, bisect_by=Plane(origin=(3.724824896, 4.546936658, -0.75), z_dir=(-0.8660254037844386, -0.5000000000000002, 0)), keep=Keep.TOP, mode=Mode.PRIVATE)
    fillet1_piece_9 = split(fillet1_piece_9, bisect_by=Plane(origin=(-1.412675104, 8.551697574, -0.75), z_dir=(0.8660254037844388, -0.4999999999999999, 0)), keep=Keep.TOP, mode=Mode.PRIVATE)
    fillet1_piece_9 = fillet1_piece_9 - Plane(origin=(-1.687194157, 8.710191223, -0.070280166), x_dir=(0.8660254037844388, -0.4999999999999997, 0), z_dir=(0.4999999999999997, 0.8660254037844388, 0)) * Cylinder(0.75, 22, mode=Mode.PRIVATE)
    fillet1_piece_9 = fillet1_piece_9 - Plane(origin=(3.999343949, 4.705430307, -0.070280166), x_dir=(-0.8660254037844387, -0.5000000000000001, 0), z_dir=(0.5000000000000001, -0.8660254037844387, 0)) * Cylinder(0.75, 22, mode=Mode.PRIVATE)
    add(fillet1_piece_9)
    with BuildSketch(Plane(origin=(-2.075350207, 6.537885222, -0.75), x_dir=(0, 0, 1), z_dir=(-0.4999999999999997, -0.8660254037844388, 0))) as fillet1_piece_10_section:
        with BuildLine():
            CenterArc((0.679719834, 0.75), FILLET1_R, 205.001989456, 64.998010544)
            Line((0, 0.433012702), (0, 0))
            Line((0, 0), (0.679719834, 0))
        make_face()
    fillet1_piece_10 = extrude(amount=9.24859917, mode=Mode.PRIVATE)
    fillet1_piece_10 = split(fillet1_piece_10, bisect_by=Plane(origin=(-2.075350207, 5.499261314, -0.75), z_dir=(0, -1, 0)), keep=Keep.TOP, mode=Mode.PRIVATE)
    fillet1_piece_10 = split(fillet1_piece_10, bisect_by=Plane(origin=(-8.112324896, 3.05243626, -0.75), z_dir=(0.8660254037844386, 0.5000000000000001, 0)), keep=Keep.TOP, mode=Mode.PRIVATE)
    fillet1_piece_10 = fillet1_piece_10 - Plane(origin=(-8.386843949, 2.893942611, -0.070280166), x_dir=(0.8660254037844387, 0.5000000000000001, 0), z_dir=(-0.5000000000000001, 0.8660254037844387, 0)) * Cylinder(0.75, 22, mode=Mode.PRIVATE)
    fillet1_piece_10 = fillet1_piece_10 - Plane(origin=(-2.075350207, 5.816248612, -0.070280166), x_dir=(0, -1, 0), z_dir=(1, 0, 0)) * Cylinder(0.75, 22, mode=Mode.PRIVATE)
    add(fillet1_piece_10)
    with BuildSketch(Plane(origin=(-6.699649793, 1.471636609, -0.75), x_dir=(0, 0, 1), z_dir=(0.5000000000000001, -0.8660254037844387, 0))) as fillet1_piece_11_section:
        with BuildLine():
            CenterArc((0.679719834, 0.75), FILLET1_R, 205.001989456, 64.998010544)
            Line((0, 0.433012702), (0, 0))
            Line((0, 0), (0.679719834, 0))
        make_face()
    fillet1_piece_11 = extrude(amount=9.24859917, mode=Mode.PRIVATE)
    fillet1_piece_11 = split(fillet1_piece_11, bisect_by=Plane(origin=(-6.699649793, -5.499261314, -0.75), z_dir=(0, 1, 0)), keep=Keep.TOP, mode=Mode.PRIVATE)
    fillet1_piece_11 = split(fillet1_piece_11, bisect_by=Plane(origin=(-5.800175104, 0.952324656, -0.75), z_dir=(0.8660254037844388, -0.4999999999999999, 0)), keep=Keep.TOP, mode=Mode.PRIVATE)
    fillet1_piece_11 = fillet1_piece_11 - Plane(origin=(-6.074694157, 1.110818305, -0.070280166), x_dir=(0.8660254037844388, -0.4999999999999997, 0), z_dir=(0.4999999999999997, 0.8660254037844388, 0)) * Cylinder(0.75, 22, mode=Mode.PRIVATE)
    fillet1_piece_11 = fillet1_piece_11 - Plane(origin=(-6.699649793, -5.816248612, -0.070280166), x_dir=(0, 1, 0), z_dir=(-1, 0, 0)) * Cylinder(0.75, 22, mode=Mode.PRIVATE)
    add(fillet1_piece_11)
    with BuildSketch(Plane(origin=(-4.624299585, -5.066248612, -0.75), x_dir=(0, 0, 1), z_dir=(1, 0, 0))) as fillet1_piece_12_section:
        with BuildLine():
            CenterArc((0.679719834, 0.75), FILLET1_R, 205.001989456, 64.998010544)
            Line((0, 0.433012702), (0, 0))
            Line((0, 0), (0.679719834, 0))
        make_face()
    fillet1_piece_12 = extrude(amount=9.24859917, mode=Mode.PRIVATE)
    fillet1_piece_12 = split(fillet1_piece_12, bisect_by=Plane(origin=(1.412675104, -8.551697574, -0.75), z_dir=(-0.8660254037844389, 0.4999999999999995, 0)), keep=Keep.TOP, mode=Mode.PRIVATE)
    fillet1_piece_12 = split(fillet1_piece_12, bisect_by=Plane(origin=(-3.724824896, -4.546936658, -0.75), z_dir=(0.8660254037844386, 0.5000000000000001, 0)), keep=Keep.TOP, mode=Mode.PRIVATE)
    fillet1_piece_12 = fillet1_piece_12 - Plane(origin=(-3.999343949, -4.705430307, -0.070280166), x_dir=(0.8660254037844387, 0.5000000000000001, 0), z_dir=(-0.5000000000000001, 0.8660254037844387, 0)) * Cylinder(0.75, 22, mode=Mode.PRIVATE)
    fillet1_piece_12 = fillet1_piece_12 - Plane(origin=(1.687194157, -8.710191223, -0.070280166), x_dir=(-0.8660254037844387, 0.5000000000000001, 0), z_dir=(-0.5000000000000001, -0.8660254037844387, 0)) * Cylinder(0.75, 22, mode=Mode.PRIVATE)
    add(fillet1_piece_12)


solid = part.part
